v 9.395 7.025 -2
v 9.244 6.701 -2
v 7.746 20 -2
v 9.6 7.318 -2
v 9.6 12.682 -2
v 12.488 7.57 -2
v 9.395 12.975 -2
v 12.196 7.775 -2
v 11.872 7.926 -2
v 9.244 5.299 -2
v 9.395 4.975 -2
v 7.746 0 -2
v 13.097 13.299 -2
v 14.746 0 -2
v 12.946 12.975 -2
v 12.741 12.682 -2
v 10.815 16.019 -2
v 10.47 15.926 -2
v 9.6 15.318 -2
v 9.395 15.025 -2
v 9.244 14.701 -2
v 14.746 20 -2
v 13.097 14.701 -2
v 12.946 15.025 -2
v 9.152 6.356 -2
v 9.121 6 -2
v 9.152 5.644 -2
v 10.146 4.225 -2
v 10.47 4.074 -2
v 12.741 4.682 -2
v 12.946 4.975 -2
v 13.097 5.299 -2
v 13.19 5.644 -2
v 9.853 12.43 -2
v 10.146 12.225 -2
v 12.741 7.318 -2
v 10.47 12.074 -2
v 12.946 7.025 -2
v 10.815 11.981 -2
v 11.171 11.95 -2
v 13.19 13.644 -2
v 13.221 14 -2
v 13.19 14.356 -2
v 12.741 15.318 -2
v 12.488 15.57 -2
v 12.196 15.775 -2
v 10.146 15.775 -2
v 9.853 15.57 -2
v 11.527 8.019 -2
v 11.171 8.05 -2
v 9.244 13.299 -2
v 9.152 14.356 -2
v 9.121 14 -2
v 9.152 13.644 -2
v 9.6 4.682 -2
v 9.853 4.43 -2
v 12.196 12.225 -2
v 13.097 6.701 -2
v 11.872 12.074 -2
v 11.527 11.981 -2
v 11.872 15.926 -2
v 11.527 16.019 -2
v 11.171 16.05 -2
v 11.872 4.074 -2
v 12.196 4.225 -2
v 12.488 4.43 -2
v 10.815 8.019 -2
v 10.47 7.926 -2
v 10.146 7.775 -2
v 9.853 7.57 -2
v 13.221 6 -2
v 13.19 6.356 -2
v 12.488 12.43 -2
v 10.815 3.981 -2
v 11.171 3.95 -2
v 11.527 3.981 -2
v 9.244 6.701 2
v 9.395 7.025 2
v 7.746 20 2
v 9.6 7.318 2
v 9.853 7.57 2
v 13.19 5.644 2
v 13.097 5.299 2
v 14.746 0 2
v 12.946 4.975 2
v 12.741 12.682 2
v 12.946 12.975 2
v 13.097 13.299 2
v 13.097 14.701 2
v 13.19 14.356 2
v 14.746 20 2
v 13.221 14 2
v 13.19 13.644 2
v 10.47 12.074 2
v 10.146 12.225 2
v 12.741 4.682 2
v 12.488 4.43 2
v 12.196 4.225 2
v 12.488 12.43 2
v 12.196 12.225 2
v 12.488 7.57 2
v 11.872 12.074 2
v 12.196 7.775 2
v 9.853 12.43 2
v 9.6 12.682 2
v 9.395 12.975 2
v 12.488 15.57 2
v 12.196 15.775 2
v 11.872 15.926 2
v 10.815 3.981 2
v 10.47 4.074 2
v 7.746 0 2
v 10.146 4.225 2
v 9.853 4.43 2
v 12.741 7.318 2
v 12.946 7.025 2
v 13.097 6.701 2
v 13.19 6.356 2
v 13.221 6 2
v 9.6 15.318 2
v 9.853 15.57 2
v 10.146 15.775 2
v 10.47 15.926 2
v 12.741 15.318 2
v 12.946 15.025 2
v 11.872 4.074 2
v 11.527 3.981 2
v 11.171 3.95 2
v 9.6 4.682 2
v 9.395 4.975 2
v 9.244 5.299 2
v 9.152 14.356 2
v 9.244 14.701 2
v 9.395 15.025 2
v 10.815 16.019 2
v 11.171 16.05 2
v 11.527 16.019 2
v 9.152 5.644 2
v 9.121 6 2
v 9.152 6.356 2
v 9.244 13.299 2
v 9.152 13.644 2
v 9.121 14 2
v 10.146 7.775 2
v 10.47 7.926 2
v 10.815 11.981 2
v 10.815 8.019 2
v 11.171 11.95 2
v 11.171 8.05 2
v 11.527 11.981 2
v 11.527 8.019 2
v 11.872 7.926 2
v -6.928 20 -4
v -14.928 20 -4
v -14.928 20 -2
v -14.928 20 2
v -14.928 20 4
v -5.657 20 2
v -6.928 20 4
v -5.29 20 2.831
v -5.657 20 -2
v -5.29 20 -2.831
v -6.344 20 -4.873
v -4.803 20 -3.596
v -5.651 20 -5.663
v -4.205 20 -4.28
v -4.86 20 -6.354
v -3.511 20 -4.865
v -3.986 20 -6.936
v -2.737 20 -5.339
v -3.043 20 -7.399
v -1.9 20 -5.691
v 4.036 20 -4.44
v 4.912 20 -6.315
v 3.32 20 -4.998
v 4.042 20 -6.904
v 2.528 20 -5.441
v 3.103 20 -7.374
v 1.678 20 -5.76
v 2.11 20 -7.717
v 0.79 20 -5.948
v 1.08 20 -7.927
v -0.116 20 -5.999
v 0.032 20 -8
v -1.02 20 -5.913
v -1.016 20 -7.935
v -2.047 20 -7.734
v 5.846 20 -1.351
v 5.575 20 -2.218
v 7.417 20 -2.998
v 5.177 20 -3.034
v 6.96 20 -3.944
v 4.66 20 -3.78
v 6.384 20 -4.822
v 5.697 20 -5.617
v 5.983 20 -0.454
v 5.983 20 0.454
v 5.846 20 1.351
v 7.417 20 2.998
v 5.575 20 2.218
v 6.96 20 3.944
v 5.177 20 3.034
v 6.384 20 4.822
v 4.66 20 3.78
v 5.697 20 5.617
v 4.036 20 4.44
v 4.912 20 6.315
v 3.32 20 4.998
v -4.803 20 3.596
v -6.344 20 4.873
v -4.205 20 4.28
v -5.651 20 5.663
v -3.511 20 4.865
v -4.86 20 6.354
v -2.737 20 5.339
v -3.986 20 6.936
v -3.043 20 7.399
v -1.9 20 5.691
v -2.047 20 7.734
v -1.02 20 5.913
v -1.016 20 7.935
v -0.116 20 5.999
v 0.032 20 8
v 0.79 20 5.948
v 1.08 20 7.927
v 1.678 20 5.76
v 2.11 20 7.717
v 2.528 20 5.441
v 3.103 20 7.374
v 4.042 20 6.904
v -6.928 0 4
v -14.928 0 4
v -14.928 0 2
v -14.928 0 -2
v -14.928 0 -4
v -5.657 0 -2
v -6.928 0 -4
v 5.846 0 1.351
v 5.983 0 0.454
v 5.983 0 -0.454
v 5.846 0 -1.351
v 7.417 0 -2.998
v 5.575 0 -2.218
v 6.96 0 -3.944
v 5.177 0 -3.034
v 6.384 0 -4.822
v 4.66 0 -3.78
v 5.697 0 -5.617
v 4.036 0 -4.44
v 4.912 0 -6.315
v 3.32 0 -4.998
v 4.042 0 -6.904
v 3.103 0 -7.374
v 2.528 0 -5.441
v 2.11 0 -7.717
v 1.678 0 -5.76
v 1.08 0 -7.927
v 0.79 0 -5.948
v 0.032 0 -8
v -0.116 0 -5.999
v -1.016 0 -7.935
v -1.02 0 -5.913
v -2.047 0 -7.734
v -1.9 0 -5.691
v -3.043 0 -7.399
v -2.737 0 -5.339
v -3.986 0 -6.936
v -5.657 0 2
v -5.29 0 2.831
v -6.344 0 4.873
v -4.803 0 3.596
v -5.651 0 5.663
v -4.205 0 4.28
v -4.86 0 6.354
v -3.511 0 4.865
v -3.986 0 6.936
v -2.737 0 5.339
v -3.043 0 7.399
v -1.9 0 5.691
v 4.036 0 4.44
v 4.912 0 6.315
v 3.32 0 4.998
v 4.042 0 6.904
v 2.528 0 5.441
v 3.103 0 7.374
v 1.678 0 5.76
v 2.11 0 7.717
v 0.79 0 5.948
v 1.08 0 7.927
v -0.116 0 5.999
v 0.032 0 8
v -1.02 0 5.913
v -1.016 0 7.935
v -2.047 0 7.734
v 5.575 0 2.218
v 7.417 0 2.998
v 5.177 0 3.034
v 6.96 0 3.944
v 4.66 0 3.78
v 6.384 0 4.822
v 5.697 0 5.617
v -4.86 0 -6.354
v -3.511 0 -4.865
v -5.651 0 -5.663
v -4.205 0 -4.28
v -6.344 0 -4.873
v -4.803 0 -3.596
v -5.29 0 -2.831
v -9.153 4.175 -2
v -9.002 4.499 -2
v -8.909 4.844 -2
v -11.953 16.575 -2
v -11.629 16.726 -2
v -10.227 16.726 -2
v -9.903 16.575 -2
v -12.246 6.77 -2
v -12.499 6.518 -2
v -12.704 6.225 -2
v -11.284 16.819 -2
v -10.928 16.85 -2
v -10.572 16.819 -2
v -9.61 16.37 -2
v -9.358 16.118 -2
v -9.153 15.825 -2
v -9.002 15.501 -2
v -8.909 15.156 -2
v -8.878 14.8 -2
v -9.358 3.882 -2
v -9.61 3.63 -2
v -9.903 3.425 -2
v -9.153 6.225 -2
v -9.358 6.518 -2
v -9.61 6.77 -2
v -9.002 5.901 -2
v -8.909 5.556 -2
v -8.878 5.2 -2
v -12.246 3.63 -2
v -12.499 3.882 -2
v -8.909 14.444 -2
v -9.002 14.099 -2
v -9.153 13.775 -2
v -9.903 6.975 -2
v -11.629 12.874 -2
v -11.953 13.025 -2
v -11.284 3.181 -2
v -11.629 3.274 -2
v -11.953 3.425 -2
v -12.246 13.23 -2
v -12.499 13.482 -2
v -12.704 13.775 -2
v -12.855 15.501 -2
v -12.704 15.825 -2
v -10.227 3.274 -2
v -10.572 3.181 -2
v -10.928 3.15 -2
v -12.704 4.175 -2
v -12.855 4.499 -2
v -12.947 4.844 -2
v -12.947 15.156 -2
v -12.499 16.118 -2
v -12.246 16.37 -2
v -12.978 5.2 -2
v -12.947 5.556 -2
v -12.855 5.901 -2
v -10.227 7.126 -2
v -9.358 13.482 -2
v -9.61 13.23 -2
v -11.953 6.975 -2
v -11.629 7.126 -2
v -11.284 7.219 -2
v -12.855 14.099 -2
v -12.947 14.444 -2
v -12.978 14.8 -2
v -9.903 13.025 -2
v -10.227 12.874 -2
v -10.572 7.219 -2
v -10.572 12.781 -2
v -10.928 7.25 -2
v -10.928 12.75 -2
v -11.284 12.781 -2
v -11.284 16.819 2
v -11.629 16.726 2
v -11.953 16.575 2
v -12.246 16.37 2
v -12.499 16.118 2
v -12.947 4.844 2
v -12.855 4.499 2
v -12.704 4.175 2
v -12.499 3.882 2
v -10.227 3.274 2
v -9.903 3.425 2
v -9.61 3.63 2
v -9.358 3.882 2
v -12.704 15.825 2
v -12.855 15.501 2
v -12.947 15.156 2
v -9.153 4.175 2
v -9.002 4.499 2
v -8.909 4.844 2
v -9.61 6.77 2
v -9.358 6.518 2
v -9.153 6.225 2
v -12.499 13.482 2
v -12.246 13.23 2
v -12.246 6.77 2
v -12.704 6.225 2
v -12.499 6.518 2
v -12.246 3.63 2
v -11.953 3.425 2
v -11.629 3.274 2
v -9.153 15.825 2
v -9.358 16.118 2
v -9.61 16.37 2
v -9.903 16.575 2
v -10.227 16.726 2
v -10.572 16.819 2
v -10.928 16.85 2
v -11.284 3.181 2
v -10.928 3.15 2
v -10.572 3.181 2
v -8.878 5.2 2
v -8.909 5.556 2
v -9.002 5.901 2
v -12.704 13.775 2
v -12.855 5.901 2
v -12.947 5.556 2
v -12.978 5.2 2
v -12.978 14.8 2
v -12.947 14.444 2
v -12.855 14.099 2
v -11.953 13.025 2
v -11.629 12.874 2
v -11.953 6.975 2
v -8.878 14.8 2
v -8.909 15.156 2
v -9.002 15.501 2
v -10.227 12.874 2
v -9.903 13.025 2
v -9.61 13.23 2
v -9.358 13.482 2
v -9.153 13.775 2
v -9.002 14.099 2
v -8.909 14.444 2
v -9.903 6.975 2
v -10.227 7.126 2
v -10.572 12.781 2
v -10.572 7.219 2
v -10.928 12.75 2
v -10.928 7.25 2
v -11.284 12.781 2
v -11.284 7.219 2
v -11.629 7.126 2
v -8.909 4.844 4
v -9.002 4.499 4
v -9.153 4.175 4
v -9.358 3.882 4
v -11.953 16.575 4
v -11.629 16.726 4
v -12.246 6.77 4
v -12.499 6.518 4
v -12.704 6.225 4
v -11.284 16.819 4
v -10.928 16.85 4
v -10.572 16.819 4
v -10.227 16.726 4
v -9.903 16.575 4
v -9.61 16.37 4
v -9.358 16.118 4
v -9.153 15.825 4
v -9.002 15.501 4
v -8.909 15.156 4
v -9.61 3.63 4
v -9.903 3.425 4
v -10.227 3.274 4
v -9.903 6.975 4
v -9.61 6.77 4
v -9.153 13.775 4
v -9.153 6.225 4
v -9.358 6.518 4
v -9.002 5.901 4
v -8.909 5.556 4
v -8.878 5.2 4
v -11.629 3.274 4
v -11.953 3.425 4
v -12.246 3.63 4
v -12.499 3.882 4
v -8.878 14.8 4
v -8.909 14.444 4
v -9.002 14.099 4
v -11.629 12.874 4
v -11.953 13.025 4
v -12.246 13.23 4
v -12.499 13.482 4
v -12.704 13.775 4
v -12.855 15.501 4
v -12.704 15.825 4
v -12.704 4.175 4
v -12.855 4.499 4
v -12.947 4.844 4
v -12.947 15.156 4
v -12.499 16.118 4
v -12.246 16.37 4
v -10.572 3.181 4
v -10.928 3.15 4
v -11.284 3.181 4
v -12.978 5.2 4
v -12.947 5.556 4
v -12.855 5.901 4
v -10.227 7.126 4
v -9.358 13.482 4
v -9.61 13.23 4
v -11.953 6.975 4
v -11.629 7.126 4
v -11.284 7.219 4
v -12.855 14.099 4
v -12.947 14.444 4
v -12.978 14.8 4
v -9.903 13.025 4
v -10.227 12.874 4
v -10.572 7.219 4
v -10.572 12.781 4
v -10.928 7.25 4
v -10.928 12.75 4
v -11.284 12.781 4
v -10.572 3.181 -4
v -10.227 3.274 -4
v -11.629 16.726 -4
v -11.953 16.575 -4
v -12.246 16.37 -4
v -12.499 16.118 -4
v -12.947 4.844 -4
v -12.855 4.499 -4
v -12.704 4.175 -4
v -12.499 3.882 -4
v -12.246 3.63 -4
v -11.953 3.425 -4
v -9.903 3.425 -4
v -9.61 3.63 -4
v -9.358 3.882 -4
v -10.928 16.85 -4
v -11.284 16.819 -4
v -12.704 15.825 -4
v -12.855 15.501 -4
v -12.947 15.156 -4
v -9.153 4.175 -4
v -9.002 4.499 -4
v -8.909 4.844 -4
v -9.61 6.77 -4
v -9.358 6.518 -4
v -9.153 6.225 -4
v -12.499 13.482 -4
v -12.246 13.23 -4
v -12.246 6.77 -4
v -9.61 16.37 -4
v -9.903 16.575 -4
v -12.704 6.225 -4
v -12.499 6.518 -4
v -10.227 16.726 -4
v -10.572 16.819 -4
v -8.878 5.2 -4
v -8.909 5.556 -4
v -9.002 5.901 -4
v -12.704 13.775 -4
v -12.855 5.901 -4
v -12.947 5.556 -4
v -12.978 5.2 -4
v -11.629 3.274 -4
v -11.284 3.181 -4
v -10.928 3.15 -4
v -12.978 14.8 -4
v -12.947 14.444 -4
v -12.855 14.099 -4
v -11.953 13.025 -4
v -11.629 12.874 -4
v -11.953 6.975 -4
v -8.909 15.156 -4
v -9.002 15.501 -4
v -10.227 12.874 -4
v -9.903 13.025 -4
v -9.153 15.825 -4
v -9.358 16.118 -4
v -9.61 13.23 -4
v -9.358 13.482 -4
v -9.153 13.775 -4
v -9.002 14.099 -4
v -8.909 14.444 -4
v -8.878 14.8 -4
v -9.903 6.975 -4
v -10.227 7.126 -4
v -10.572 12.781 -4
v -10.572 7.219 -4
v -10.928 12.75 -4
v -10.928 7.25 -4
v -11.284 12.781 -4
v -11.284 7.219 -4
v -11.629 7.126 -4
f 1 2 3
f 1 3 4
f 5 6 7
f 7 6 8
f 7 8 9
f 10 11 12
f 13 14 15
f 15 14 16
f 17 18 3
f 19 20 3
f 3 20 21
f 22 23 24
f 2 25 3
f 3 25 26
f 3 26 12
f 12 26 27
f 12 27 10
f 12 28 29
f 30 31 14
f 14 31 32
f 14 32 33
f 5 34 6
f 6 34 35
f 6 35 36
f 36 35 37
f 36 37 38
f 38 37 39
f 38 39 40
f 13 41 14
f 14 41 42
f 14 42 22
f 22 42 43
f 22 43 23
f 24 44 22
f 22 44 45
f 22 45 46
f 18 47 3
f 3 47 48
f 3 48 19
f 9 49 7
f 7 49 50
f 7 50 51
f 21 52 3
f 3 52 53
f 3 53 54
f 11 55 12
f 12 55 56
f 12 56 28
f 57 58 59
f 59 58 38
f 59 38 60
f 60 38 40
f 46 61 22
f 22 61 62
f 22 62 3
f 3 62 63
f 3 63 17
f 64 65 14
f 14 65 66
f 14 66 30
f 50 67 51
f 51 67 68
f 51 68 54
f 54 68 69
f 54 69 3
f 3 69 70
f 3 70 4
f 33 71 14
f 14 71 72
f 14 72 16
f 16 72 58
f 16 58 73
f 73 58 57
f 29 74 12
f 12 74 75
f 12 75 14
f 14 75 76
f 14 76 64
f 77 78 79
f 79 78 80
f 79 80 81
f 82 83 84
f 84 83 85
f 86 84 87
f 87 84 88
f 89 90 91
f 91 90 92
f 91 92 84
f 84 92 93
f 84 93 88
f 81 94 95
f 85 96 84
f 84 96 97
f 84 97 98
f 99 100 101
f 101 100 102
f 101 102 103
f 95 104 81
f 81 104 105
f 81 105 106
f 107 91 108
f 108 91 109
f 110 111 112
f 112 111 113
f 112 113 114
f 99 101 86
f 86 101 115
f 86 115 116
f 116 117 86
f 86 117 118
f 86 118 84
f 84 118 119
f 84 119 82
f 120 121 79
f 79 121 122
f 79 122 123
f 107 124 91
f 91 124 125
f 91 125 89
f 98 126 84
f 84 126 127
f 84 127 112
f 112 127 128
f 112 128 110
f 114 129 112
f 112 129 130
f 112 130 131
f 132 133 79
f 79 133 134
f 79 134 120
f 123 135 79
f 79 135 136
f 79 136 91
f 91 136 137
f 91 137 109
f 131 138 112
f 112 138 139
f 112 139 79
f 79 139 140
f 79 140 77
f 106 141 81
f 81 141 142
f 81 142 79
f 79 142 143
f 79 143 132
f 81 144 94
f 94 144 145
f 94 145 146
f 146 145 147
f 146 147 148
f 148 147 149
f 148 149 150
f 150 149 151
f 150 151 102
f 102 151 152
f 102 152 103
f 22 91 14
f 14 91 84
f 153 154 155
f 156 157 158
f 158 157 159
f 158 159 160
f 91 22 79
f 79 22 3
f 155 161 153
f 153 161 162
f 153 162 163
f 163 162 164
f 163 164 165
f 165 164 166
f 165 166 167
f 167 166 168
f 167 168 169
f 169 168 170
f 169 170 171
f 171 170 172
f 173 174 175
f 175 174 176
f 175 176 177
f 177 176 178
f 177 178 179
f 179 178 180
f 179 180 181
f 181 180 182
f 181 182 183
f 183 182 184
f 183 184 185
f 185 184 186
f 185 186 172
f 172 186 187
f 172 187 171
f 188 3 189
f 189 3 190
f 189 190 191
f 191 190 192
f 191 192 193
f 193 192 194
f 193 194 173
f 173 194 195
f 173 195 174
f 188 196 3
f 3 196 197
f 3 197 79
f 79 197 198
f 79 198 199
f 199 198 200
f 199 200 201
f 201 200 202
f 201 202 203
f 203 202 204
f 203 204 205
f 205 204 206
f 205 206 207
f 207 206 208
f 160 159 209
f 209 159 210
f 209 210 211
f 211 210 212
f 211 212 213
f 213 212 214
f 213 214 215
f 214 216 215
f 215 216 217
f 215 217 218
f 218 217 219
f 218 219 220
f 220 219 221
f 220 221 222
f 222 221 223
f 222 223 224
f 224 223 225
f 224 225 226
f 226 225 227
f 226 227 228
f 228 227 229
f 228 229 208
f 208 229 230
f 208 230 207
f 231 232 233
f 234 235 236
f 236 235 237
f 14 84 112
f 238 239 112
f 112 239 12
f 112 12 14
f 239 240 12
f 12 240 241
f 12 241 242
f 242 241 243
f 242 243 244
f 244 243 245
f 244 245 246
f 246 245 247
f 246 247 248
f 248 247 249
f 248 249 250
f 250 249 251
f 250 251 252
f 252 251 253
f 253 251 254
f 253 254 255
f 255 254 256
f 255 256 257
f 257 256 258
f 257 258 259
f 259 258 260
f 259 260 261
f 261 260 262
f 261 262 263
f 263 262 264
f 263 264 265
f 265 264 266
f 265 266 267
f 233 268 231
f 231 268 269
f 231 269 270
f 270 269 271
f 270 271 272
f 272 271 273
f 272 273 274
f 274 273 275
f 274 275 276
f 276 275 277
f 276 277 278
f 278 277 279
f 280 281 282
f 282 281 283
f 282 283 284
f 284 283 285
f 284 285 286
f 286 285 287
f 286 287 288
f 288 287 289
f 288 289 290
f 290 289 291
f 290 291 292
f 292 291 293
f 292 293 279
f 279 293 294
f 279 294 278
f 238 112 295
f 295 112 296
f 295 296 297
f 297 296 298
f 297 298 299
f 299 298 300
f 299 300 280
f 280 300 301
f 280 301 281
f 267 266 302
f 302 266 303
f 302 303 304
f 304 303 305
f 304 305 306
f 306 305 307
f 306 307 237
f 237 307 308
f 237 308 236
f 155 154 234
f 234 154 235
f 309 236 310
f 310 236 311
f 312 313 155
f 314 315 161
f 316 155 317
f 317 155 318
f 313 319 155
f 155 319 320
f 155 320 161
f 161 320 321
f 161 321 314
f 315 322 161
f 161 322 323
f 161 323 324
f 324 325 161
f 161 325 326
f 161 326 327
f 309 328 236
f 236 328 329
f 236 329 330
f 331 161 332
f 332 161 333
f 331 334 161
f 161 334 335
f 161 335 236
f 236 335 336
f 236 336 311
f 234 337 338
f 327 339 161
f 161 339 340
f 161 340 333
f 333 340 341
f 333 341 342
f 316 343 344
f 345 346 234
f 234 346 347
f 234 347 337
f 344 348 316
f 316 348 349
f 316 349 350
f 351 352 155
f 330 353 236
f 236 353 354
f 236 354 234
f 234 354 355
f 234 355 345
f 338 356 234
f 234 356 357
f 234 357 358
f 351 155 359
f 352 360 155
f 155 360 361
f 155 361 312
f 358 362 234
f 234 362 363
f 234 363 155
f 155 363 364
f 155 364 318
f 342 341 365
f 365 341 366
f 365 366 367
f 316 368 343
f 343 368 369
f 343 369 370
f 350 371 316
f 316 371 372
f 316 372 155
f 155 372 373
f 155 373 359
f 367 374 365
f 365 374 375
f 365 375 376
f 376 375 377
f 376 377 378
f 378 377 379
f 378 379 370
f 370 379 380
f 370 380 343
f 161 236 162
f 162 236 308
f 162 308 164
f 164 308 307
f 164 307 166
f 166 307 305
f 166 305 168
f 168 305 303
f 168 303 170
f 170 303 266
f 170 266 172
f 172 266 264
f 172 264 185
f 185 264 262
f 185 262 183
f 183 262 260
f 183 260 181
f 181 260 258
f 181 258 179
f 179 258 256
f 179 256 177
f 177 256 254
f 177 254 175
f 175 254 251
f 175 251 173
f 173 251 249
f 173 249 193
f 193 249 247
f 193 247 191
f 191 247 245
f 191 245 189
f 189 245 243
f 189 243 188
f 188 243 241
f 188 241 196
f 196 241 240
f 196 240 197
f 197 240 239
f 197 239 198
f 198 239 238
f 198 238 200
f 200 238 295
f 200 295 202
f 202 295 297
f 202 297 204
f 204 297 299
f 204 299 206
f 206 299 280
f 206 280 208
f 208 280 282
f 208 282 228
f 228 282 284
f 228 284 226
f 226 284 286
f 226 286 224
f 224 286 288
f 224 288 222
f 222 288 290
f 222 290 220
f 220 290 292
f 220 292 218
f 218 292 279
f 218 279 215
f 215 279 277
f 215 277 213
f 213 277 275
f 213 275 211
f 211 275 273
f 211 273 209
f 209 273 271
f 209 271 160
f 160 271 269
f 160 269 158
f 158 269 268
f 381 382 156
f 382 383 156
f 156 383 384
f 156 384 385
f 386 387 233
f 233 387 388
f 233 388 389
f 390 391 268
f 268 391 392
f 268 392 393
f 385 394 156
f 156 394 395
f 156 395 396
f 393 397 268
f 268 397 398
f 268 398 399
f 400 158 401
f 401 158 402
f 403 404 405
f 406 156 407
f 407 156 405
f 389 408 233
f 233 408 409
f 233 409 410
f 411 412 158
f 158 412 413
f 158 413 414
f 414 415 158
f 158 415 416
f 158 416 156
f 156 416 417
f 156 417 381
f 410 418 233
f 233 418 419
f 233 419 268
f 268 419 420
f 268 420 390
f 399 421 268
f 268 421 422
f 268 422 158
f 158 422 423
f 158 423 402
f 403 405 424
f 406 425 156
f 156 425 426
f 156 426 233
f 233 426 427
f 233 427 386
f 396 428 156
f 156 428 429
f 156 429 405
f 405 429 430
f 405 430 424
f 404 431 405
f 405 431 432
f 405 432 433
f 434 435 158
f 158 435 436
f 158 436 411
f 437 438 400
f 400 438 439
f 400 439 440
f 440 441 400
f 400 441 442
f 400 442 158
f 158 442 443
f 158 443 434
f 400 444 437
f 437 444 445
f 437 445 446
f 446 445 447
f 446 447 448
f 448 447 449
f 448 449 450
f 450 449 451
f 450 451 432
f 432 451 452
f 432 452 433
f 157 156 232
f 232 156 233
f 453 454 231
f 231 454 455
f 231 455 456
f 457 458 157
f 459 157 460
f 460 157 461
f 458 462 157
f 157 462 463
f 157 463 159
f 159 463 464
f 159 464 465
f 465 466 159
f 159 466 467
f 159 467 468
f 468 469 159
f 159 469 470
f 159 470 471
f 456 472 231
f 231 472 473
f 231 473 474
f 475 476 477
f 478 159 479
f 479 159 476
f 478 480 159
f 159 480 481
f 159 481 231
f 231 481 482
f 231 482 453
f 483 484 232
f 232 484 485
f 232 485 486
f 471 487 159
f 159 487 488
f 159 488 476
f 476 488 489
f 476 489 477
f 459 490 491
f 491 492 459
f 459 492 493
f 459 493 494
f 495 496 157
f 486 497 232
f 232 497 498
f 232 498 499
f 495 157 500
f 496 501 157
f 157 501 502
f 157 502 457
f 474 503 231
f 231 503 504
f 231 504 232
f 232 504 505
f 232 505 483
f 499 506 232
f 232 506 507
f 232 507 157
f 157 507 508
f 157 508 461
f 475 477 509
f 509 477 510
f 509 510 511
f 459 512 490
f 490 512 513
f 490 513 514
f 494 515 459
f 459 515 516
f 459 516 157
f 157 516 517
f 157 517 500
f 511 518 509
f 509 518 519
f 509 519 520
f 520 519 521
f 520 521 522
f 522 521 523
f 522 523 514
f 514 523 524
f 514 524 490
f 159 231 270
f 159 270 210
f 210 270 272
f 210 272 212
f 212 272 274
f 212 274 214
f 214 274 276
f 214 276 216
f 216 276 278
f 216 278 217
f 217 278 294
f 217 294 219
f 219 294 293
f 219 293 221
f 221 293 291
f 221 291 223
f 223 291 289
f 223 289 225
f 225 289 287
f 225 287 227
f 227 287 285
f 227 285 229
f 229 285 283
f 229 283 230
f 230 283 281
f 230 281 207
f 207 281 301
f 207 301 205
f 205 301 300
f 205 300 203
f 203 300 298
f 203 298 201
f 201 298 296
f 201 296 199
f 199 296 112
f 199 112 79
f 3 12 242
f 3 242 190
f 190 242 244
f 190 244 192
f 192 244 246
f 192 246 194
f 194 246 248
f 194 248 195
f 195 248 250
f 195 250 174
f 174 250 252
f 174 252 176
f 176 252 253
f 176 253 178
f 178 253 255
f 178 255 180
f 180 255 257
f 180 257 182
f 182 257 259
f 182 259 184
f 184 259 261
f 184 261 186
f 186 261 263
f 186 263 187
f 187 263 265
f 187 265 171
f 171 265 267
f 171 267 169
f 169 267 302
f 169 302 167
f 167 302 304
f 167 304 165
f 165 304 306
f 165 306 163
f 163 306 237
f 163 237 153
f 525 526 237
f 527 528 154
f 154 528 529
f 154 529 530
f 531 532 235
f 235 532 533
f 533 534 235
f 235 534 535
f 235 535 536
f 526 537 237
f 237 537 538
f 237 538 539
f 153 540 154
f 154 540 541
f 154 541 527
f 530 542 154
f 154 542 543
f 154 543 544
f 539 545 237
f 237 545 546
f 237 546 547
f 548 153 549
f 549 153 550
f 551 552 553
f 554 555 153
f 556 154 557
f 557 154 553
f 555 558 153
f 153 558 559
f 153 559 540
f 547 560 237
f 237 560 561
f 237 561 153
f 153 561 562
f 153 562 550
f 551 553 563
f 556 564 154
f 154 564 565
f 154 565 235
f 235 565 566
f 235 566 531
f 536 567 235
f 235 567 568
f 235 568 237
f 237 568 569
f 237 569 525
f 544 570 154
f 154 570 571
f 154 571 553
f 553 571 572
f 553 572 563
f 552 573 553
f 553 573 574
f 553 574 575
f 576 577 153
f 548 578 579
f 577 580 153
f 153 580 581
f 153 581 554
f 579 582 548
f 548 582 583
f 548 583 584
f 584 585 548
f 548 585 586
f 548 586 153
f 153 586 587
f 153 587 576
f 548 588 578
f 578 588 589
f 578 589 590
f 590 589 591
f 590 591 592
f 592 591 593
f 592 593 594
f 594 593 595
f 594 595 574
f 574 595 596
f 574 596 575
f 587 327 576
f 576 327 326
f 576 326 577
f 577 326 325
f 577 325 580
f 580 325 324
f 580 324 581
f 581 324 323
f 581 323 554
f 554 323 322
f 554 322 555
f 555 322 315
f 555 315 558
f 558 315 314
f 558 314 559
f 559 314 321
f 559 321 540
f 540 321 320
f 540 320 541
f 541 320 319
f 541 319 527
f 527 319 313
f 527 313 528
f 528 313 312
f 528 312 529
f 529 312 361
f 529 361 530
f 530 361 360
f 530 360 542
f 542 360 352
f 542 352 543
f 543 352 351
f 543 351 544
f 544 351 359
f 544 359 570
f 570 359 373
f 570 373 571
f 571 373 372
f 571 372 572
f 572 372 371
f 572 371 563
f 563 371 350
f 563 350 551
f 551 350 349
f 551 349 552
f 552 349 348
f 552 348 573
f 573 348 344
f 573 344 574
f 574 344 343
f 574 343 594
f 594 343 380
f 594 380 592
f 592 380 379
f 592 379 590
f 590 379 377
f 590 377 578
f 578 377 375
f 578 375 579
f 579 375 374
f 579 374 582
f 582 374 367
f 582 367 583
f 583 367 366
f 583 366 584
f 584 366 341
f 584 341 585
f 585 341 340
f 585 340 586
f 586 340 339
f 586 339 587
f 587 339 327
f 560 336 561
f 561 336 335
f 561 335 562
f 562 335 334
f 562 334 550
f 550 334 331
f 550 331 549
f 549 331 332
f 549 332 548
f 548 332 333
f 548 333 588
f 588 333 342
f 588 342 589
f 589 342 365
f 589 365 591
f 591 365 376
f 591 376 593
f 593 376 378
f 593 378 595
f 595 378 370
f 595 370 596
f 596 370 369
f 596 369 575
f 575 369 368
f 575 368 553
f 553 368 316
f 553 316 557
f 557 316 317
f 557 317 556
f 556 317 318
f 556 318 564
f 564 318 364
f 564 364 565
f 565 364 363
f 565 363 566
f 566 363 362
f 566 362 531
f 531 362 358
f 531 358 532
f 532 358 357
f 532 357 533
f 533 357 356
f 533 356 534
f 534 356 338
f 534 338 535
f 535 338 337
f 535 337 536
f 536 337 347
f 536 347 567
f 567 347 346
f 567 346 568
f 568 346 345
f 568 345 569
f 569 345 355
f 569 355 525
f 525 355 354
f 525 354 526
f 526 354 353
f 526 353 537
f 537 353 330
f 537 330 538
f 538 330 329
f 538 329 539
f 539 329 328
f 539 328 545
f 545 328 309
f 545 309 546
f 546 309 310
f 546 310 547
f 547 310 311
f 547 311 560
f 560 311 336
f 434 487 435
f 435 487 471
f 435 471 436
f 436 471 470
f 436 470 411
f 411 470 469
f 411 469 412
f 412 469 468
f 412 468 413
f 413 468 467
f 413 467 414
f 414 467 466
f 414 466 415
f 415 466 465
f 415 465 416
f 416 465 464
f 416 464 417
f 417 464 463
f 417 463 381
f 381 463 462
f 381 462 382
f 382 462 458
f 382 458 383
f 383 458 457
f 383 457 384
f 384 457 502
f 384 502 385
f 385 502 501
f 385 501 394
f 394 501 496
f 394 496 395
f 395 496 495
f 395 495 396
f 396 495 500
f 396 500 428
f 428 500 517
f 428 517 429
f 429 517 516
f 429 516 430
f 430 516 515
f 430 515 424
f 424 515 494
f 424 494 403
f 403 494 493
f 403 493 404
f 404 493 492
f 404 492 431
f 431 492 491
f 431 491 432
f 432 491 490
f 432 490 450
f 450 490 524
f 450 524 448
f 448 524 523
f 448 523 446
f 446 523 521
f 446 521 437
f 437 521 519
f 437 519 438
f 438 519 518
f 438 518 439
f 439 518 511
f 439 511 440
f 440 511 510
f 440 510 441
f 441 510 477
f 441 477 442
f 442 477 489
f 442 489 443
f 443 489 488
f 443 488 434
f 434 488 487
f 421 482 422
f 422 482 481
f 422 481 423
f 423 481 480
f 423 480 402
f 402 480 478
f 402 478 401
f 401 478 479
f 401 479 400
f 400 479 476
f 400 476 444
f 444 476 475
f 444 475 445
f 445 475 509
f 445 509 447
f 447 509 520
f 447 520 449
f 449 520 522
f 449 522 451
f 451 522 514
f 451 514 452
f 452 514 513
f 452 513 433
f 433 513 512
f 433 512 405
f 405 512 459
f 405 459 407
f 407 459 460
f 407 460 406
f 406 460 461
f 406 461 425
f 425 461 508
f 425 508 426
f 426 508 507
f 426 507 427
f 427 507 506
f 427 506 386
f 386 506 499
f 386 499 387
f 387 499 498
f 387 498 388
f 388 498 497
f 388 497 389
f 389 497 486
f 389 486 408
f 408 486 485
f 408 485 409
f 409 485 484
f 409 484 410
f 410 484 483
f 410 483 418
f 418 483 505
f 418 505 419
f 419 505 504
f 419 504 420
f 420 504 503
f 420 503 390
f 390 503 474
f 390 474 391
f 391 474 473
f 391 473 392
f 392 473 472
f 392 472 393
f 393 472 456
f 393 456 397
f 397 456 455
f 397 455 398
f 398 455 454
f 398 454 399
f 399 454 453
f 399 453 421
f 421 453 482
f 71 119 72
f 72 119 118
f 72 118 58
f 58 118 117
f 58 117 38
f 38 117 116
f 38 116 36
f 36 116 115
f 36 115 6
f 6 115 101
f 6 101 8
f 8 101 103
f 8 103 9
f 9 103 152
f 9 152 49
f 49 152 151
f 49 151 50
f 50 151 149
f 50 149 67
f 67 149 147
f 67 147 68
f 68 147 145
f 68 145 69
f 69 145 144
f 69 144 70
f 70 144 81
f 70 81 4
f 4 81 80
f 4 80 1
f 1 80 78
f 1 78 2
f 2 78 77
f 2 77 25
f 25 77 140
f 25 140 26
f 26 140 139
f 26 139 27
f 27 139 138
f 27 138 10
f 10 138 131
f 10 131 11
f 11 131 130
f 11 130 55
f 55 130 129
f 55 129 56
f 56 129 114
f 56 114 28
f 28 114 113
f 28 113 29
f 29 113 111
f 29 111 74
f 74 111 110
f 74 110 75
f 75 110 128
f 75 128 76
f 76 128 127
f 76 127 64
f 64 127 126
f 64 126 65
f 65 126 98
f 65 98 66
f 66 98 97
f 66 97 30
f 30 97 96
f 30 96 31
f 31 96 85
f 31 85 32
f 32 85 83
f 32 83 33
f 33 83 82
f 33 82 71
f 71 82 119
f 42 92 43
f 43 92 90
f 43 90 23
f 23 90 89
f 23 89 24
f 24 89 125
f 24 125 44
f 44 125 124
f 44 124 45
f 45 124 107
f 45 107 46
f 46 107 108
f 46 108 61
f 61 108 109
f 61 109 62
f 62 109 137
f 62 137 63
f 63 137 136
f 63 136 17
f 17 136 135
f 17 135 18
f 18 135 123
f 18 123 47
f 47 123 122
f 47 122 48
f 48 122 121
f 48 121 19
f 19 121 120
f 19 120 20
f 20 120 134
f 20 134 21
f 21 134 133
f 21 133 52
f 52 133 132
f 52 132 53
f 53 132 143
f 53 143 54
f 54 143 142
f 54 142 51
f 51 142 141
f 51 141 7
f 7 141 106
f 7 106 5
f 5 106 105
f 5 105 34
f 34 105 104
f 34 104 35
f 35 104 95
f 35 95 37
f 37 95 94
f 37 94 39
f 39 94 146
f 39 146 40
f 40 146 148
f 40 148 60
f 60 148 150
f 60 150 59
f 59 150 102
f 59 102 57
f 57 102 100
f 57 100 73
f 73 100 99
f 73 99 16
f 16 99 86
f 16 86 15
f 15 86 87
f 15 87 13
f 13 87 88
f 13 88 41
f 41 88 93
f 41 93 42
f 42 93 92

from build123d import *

# Parameters (mm, degrees)
BOSS_EXTRUDE1_DEPTH = 20
SKETCH2_R           = 2.05
CUT_EXTRUDE1_DEPTH  = 20


with BuildPart() as part:
    # Sketch1 → Boss-Extrude1 (new body)
    with BuildSketch(Plane(origin=(0, 0, 0), x_dir=(1, 0, 0), z_dir=(0, 1, 0))):
        with BuildLine():
            Line((-14.92820323, 2), (-5.656854249, 2))
            ThreePointArc((-5.656854249, 2), (6, 0), (-5.656854249, -2))
            Line((-5.656854249, -2), (-14.92820323, -2))
            Line((-14.92820323, -2), (-14.92820323, -4))
            Line((-14.92820323, -4), (-6.92820323, -4))
            ThreePointArc((-6.92820323, -4), (1.080363027, -7.926715318), (7.745966692, -2))
            Line((7.745966692, -2), (14.745966692, -2))
            Line((14.745966692, -2), (14.745966692, 2))
            Line((14.745966692, 2), (7.745966692, 2))
            ThreePointArc((7.745966692, 2), (1.080363027, 7.926715318), (-6.92820323, 4))
            Line((-6.92820323, 4), (-14.92820323, 4))
            Line((-14.92820323, 4), (-14.92820323, 2))
        make_face()
    extrude(amount=BOSS_EXTRUDE1_DEPTH)

    # Sketch2 → Cut-Extrude1 (cut)
    with BuildSketch(Plane.XY.offset(4)):
        with Locations((-10.92820323, 14.8)):
            Circle(SKETCH2_R)
        with Locations((-10.92820323, 5.2)):
            Circle(SKETCH2_R)
        with Locations((11.170658207, 14)):
            Circle(SKETCH2_R)
        with Locations((11.170658207, 6)):
            Circle(SKETCH2_R)
    extrude(amount=-CUT_EXTRUDE1_DEPTH, mode=Mode.SUBTRACT)


solid = part.part
